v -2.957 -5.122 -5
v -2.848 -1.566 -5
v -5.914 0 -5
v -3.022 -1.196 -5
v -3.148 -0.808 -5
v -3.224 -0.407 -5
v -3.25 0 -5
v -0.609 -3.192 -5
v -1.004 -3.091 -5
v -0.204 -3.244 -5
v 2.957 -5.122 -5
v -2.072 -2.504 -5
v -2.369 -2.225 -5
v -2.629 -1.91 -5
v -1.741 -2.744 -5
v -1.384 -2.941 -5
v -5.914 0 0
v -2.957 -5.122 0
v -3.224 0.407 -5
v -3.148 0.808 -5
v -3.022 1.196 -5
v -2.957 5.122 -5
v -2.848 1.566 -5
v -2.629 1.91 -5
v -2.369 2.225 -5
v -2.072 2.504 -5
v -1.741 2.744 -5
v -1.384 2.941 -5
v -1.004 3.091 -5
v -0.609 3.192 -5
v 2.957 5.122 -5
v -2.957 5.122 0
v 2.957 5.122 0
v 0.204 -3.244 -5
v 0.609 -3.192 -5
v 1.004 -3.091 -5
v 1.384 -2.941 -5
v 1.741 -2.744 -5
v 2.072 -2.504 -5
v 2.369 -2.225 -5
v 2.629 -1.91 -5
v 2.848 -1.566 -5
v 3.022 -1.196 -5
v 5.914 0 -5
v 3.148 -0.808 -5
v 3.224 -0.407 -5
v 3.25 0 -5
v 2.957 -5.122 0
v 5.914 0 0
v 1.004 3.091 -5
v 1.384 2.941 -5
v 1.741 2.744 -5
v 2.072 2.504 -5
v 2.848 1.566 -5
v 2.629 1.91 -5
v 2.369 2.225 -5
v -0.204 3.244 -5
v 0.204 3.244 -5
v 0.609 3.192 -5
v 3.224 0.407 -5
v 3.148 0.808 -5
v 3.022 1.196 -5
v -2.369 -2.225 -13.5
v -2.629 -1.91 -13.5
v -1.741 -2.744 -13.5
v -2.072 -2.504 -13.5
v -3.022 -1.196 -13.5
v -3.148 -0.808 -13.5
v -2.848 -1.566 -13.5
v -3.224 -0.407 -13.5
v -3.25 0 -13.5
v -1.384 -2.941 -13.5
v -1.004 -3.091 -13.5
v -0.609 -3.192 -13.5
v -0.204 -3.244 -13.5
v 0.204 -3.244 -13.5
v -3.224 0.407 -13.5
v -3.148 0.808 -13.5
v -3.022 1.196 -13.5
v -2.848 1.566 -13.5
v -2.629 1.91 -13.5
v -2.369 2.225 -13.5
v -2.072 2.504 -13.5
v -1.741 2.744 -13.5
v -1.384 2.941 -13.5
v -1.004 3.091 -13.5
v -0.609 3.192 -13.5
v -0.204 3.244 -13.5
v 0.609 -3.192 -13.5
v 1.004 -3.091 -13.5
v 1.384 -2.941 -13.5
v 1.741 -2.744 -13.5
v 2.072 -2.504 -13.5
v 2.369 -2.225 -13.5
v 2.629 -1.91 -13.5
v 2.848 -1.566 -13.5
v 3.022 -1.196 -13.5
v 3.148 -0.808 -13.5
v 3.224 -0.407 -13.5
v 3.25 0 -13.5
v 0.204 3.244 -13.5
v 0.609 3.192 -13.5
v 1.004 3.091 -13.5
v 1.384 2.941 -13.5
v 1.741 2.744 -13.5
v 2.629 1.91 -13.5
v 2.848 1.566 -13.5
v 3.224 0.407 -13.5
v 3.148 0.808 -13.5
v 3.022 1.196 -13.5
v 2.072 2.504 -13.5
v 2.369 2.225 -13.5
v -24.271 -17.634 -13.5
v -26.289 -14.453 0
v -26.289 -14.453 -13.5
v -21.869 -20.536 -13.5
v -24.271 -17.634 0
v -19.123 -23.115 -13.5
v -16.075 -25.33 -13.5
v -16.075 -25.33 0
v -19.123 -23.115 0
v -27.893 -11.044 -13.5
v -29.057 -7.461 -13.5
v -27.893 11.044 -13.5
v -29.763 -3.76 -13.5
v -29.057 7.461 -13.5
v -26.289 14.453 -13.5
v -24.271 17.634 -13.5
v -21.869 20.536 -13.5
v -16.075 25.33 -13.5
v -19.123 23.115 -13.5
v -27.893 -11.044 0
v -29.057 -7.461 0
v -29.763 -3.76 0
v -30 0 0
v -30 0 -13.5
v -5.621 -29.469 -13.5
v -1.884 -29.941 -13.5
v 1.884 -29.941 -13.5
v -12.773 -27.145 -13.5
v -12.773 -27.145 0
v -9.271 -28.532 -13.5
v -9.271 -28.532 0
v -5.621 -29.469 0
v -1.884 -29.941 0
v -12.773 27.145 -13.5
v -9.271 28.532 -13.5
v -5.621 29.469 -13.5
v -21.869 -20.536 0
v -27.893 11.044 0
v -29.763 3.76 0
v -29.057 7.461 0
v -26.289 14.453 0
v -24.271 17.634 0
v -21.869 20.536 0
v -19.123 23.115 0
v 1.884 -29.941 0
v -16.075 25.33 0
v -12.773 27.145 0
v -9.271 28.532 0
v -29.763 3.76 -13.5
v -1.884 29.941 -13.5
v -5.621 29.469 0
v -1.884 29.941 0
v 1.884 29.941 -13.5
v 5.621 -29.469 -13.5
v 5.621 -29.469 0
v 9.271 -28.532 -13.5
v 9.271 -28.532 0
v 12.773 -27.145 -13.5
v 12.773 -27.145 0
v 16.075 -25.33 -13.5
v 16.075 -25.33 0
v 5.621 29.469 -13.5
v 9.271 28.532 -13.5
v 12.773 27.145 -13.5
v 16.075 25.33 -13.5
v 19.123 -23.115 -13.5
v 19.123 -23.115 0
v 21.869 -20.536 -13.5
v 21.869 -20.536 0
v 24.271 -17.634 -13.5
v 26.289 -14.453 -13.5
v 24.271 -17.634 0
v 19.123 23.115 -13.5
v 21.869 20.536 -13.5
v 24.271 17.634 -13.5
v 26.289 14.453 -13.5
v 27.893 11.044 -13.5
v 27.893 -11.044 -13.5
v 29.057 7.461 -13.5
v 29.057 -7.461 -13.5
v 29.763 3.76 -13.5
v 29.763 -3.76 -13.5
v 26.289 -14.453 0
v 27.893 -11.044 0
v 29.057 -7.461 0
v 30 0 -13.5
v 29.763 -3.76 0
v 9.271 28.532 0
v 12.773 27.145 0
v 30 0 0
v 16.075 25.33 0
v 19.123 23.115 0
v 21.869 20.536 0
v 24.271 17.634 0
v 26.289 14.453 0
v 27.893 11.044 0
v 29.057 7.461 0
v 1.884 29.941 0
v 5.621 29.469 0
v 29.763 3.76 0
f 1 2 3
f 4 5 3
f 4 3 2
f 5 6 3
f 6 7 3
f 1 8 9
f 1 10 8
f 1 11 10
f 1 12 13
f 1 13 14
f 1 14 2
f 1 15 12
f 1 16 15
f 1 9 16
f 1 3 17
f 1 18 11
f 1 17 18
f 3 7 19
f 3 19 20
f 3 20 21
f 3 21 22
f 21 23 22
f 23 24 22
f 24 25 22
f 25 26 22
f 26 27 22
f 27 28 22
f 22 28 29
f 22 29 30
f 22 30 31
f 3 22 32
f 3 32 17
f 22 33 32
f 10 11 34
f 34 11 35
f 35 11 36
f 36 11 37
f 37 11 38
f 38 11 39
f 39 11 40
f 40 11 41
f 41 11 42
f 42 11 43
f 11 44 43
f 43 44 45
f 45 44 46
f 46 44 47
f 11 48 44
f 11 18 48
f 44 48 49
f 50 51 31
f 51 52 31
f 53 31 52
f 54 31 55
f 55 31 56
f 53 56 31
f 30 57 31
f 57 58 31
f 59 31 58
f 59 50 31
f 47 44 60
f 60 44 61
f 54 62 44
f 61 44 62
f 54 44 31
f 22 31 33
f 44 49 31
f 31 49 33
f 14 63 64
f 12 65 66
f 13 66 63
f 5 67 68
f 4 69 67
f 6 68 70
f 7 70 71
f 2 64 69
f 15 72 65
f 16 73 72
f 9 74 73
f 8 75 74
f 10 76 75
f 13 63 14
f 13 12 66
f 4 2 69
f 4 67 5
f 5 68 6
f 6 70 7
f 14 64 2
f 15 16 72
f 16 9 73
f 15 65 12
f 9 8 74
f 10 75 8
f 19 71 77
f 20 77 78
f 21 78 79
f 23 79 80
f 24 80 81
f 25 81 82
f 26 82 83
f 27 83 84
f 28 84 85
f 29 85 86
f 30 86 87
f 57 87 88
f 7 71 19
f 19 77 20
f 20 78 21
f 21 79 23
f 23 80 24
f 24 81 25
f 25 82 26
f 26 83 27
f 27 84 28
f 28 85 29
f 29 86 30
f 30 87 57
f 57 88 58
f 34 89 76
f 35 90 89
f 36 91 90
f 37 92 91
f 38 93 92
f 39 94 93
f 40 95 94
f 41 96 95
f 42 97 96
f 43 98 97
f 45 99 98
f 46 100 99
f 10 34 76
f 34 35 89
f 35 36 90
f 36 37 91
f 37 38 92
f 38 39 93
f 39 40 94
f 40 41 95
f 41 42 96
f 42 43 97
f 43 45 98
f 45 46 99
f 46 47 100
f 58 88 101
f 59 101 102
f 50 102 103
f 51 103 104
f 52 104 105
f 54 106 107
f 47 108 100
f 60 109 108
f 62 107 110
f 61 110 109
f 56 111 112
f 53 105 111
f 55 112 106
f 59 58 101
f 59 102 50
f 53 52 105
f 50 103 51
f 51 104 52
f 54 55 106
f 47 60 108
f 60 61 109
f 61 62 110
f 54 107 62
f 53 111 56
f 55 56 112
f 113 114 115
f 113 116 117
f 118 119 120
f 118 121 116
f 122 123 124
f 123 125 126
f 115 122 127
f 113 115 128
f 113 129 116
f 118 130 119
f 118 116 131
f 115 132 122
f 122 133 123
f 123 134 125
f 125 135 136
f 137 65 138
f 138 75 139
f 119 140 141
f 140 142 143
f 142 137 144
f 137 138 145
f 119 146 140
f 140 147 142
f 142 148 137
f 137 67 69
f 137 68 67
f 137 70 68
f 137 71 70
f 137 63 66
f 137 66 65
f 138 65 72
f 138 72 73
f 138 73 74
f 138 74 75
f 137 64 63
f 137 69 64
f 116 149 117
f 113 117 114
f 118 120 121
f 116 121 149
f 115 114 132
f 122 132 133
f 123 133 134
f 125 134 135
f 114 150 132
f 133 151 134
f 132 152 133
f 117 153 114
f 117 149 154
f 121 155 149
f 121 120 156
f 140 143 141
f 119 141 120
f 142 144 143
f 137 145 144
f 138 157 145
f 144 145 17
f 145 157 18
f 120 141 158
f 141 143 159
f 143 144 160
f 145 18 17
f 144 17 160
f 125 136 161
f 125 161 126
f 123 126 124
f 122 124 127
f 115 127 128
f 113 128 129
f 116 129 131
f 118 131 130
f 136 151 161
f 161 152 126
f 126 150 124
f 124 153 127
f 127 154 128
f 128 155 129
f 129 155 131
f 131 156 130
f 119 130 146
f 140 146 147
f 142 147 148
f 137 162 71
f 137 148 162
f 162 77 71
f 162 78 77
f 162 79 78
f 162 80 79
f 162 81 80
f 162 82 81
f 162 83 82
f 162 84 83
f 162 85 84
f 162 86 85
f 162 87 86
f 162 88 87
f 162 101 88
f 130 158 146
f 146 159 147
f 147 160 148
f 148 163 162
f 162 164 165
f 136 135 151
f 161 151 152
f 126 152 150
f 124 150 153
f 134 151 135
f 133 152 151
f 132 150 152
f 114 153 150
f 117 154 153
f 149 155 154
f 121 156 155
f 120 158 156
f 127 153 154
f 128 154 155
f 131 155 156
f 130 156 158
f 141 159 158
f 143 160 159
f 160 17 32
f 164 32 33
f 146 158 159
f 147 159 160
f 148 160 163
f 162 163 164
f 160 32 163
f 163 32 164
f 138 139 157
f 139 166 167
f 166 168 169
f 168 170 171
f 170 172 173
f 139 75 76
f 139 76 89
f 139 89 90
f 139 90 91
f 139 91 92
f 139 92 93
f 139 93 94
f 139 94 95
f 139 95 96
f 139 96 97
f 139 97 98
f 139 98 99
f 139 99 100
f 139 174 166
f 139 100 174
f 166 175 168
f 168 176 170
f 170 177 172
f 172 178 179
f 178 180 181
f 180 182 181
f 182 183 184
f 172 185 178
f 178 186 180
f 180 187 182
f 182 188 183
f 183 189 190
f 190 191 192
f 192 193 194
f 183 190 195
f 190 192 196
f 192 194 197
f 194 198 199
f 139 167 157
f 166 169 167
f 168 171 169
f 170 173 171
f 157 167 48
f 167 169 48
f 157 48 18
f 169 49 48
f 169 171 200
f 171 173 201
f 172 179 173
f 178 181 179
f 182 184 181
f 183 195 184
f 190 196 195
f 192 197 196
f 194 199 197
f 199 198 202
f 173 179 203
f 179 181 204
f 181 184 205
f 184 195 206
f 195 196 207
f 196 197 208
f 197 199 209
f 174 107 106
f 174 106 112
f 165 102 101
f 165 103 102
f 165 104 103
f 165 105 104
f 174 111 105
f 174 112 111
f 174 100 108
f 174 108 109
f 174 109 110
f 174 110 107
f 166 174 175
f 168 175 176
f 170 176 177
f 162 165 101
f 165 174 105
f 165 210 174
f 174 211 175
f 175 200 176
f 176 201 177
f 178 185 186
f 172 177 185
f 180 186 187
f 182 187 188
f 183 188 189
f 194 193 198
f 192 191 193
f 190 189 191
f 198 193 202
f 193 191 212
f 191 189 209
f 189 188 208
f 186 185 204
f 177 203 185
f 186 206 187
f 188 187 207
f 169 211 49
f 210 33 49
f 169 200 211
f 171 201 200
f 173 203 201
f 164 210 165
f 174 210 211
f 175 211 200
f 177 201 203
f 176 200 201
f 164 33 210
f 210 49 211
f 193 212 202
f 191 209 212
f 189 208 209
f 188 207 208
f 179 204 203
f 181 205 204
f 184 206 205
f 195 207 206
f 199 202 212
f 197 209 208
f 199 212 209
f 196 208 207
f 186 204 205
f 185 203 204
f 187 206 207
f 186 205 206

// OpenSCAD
$fn = 50;


difference() {
	union() {
		translate(v = [0, 0, -13.5000000000]) {
			cylinder(h = 13.5000000000, r = 30.0000000000);
		}
	}
	union() {
		translate(v = [0, 0, 0]) {
			rotate(a = [0, 0, 0]) {
				difference() {
					union() {
						translate(v = [0, 0, -5]) {
							linear_extrude(height = 5) {
								polygon(points = [[5.9142500000, 0.0000000000], [2.9571250000, 5.1218907443], [-2.9571250000, 5.1218907443], [-5.9142500000, 0.0000000000], [-2.9571250000, -5.1218907443], [2.9571250000, -5.1218907443]]);
							}
						}
					}
					union();
				}
			}
		}
		#translate(v = [0, 0, -100.0000000000]) {
			cylinder(h = 200, r = 3.2500000000);
		}
	}
}
